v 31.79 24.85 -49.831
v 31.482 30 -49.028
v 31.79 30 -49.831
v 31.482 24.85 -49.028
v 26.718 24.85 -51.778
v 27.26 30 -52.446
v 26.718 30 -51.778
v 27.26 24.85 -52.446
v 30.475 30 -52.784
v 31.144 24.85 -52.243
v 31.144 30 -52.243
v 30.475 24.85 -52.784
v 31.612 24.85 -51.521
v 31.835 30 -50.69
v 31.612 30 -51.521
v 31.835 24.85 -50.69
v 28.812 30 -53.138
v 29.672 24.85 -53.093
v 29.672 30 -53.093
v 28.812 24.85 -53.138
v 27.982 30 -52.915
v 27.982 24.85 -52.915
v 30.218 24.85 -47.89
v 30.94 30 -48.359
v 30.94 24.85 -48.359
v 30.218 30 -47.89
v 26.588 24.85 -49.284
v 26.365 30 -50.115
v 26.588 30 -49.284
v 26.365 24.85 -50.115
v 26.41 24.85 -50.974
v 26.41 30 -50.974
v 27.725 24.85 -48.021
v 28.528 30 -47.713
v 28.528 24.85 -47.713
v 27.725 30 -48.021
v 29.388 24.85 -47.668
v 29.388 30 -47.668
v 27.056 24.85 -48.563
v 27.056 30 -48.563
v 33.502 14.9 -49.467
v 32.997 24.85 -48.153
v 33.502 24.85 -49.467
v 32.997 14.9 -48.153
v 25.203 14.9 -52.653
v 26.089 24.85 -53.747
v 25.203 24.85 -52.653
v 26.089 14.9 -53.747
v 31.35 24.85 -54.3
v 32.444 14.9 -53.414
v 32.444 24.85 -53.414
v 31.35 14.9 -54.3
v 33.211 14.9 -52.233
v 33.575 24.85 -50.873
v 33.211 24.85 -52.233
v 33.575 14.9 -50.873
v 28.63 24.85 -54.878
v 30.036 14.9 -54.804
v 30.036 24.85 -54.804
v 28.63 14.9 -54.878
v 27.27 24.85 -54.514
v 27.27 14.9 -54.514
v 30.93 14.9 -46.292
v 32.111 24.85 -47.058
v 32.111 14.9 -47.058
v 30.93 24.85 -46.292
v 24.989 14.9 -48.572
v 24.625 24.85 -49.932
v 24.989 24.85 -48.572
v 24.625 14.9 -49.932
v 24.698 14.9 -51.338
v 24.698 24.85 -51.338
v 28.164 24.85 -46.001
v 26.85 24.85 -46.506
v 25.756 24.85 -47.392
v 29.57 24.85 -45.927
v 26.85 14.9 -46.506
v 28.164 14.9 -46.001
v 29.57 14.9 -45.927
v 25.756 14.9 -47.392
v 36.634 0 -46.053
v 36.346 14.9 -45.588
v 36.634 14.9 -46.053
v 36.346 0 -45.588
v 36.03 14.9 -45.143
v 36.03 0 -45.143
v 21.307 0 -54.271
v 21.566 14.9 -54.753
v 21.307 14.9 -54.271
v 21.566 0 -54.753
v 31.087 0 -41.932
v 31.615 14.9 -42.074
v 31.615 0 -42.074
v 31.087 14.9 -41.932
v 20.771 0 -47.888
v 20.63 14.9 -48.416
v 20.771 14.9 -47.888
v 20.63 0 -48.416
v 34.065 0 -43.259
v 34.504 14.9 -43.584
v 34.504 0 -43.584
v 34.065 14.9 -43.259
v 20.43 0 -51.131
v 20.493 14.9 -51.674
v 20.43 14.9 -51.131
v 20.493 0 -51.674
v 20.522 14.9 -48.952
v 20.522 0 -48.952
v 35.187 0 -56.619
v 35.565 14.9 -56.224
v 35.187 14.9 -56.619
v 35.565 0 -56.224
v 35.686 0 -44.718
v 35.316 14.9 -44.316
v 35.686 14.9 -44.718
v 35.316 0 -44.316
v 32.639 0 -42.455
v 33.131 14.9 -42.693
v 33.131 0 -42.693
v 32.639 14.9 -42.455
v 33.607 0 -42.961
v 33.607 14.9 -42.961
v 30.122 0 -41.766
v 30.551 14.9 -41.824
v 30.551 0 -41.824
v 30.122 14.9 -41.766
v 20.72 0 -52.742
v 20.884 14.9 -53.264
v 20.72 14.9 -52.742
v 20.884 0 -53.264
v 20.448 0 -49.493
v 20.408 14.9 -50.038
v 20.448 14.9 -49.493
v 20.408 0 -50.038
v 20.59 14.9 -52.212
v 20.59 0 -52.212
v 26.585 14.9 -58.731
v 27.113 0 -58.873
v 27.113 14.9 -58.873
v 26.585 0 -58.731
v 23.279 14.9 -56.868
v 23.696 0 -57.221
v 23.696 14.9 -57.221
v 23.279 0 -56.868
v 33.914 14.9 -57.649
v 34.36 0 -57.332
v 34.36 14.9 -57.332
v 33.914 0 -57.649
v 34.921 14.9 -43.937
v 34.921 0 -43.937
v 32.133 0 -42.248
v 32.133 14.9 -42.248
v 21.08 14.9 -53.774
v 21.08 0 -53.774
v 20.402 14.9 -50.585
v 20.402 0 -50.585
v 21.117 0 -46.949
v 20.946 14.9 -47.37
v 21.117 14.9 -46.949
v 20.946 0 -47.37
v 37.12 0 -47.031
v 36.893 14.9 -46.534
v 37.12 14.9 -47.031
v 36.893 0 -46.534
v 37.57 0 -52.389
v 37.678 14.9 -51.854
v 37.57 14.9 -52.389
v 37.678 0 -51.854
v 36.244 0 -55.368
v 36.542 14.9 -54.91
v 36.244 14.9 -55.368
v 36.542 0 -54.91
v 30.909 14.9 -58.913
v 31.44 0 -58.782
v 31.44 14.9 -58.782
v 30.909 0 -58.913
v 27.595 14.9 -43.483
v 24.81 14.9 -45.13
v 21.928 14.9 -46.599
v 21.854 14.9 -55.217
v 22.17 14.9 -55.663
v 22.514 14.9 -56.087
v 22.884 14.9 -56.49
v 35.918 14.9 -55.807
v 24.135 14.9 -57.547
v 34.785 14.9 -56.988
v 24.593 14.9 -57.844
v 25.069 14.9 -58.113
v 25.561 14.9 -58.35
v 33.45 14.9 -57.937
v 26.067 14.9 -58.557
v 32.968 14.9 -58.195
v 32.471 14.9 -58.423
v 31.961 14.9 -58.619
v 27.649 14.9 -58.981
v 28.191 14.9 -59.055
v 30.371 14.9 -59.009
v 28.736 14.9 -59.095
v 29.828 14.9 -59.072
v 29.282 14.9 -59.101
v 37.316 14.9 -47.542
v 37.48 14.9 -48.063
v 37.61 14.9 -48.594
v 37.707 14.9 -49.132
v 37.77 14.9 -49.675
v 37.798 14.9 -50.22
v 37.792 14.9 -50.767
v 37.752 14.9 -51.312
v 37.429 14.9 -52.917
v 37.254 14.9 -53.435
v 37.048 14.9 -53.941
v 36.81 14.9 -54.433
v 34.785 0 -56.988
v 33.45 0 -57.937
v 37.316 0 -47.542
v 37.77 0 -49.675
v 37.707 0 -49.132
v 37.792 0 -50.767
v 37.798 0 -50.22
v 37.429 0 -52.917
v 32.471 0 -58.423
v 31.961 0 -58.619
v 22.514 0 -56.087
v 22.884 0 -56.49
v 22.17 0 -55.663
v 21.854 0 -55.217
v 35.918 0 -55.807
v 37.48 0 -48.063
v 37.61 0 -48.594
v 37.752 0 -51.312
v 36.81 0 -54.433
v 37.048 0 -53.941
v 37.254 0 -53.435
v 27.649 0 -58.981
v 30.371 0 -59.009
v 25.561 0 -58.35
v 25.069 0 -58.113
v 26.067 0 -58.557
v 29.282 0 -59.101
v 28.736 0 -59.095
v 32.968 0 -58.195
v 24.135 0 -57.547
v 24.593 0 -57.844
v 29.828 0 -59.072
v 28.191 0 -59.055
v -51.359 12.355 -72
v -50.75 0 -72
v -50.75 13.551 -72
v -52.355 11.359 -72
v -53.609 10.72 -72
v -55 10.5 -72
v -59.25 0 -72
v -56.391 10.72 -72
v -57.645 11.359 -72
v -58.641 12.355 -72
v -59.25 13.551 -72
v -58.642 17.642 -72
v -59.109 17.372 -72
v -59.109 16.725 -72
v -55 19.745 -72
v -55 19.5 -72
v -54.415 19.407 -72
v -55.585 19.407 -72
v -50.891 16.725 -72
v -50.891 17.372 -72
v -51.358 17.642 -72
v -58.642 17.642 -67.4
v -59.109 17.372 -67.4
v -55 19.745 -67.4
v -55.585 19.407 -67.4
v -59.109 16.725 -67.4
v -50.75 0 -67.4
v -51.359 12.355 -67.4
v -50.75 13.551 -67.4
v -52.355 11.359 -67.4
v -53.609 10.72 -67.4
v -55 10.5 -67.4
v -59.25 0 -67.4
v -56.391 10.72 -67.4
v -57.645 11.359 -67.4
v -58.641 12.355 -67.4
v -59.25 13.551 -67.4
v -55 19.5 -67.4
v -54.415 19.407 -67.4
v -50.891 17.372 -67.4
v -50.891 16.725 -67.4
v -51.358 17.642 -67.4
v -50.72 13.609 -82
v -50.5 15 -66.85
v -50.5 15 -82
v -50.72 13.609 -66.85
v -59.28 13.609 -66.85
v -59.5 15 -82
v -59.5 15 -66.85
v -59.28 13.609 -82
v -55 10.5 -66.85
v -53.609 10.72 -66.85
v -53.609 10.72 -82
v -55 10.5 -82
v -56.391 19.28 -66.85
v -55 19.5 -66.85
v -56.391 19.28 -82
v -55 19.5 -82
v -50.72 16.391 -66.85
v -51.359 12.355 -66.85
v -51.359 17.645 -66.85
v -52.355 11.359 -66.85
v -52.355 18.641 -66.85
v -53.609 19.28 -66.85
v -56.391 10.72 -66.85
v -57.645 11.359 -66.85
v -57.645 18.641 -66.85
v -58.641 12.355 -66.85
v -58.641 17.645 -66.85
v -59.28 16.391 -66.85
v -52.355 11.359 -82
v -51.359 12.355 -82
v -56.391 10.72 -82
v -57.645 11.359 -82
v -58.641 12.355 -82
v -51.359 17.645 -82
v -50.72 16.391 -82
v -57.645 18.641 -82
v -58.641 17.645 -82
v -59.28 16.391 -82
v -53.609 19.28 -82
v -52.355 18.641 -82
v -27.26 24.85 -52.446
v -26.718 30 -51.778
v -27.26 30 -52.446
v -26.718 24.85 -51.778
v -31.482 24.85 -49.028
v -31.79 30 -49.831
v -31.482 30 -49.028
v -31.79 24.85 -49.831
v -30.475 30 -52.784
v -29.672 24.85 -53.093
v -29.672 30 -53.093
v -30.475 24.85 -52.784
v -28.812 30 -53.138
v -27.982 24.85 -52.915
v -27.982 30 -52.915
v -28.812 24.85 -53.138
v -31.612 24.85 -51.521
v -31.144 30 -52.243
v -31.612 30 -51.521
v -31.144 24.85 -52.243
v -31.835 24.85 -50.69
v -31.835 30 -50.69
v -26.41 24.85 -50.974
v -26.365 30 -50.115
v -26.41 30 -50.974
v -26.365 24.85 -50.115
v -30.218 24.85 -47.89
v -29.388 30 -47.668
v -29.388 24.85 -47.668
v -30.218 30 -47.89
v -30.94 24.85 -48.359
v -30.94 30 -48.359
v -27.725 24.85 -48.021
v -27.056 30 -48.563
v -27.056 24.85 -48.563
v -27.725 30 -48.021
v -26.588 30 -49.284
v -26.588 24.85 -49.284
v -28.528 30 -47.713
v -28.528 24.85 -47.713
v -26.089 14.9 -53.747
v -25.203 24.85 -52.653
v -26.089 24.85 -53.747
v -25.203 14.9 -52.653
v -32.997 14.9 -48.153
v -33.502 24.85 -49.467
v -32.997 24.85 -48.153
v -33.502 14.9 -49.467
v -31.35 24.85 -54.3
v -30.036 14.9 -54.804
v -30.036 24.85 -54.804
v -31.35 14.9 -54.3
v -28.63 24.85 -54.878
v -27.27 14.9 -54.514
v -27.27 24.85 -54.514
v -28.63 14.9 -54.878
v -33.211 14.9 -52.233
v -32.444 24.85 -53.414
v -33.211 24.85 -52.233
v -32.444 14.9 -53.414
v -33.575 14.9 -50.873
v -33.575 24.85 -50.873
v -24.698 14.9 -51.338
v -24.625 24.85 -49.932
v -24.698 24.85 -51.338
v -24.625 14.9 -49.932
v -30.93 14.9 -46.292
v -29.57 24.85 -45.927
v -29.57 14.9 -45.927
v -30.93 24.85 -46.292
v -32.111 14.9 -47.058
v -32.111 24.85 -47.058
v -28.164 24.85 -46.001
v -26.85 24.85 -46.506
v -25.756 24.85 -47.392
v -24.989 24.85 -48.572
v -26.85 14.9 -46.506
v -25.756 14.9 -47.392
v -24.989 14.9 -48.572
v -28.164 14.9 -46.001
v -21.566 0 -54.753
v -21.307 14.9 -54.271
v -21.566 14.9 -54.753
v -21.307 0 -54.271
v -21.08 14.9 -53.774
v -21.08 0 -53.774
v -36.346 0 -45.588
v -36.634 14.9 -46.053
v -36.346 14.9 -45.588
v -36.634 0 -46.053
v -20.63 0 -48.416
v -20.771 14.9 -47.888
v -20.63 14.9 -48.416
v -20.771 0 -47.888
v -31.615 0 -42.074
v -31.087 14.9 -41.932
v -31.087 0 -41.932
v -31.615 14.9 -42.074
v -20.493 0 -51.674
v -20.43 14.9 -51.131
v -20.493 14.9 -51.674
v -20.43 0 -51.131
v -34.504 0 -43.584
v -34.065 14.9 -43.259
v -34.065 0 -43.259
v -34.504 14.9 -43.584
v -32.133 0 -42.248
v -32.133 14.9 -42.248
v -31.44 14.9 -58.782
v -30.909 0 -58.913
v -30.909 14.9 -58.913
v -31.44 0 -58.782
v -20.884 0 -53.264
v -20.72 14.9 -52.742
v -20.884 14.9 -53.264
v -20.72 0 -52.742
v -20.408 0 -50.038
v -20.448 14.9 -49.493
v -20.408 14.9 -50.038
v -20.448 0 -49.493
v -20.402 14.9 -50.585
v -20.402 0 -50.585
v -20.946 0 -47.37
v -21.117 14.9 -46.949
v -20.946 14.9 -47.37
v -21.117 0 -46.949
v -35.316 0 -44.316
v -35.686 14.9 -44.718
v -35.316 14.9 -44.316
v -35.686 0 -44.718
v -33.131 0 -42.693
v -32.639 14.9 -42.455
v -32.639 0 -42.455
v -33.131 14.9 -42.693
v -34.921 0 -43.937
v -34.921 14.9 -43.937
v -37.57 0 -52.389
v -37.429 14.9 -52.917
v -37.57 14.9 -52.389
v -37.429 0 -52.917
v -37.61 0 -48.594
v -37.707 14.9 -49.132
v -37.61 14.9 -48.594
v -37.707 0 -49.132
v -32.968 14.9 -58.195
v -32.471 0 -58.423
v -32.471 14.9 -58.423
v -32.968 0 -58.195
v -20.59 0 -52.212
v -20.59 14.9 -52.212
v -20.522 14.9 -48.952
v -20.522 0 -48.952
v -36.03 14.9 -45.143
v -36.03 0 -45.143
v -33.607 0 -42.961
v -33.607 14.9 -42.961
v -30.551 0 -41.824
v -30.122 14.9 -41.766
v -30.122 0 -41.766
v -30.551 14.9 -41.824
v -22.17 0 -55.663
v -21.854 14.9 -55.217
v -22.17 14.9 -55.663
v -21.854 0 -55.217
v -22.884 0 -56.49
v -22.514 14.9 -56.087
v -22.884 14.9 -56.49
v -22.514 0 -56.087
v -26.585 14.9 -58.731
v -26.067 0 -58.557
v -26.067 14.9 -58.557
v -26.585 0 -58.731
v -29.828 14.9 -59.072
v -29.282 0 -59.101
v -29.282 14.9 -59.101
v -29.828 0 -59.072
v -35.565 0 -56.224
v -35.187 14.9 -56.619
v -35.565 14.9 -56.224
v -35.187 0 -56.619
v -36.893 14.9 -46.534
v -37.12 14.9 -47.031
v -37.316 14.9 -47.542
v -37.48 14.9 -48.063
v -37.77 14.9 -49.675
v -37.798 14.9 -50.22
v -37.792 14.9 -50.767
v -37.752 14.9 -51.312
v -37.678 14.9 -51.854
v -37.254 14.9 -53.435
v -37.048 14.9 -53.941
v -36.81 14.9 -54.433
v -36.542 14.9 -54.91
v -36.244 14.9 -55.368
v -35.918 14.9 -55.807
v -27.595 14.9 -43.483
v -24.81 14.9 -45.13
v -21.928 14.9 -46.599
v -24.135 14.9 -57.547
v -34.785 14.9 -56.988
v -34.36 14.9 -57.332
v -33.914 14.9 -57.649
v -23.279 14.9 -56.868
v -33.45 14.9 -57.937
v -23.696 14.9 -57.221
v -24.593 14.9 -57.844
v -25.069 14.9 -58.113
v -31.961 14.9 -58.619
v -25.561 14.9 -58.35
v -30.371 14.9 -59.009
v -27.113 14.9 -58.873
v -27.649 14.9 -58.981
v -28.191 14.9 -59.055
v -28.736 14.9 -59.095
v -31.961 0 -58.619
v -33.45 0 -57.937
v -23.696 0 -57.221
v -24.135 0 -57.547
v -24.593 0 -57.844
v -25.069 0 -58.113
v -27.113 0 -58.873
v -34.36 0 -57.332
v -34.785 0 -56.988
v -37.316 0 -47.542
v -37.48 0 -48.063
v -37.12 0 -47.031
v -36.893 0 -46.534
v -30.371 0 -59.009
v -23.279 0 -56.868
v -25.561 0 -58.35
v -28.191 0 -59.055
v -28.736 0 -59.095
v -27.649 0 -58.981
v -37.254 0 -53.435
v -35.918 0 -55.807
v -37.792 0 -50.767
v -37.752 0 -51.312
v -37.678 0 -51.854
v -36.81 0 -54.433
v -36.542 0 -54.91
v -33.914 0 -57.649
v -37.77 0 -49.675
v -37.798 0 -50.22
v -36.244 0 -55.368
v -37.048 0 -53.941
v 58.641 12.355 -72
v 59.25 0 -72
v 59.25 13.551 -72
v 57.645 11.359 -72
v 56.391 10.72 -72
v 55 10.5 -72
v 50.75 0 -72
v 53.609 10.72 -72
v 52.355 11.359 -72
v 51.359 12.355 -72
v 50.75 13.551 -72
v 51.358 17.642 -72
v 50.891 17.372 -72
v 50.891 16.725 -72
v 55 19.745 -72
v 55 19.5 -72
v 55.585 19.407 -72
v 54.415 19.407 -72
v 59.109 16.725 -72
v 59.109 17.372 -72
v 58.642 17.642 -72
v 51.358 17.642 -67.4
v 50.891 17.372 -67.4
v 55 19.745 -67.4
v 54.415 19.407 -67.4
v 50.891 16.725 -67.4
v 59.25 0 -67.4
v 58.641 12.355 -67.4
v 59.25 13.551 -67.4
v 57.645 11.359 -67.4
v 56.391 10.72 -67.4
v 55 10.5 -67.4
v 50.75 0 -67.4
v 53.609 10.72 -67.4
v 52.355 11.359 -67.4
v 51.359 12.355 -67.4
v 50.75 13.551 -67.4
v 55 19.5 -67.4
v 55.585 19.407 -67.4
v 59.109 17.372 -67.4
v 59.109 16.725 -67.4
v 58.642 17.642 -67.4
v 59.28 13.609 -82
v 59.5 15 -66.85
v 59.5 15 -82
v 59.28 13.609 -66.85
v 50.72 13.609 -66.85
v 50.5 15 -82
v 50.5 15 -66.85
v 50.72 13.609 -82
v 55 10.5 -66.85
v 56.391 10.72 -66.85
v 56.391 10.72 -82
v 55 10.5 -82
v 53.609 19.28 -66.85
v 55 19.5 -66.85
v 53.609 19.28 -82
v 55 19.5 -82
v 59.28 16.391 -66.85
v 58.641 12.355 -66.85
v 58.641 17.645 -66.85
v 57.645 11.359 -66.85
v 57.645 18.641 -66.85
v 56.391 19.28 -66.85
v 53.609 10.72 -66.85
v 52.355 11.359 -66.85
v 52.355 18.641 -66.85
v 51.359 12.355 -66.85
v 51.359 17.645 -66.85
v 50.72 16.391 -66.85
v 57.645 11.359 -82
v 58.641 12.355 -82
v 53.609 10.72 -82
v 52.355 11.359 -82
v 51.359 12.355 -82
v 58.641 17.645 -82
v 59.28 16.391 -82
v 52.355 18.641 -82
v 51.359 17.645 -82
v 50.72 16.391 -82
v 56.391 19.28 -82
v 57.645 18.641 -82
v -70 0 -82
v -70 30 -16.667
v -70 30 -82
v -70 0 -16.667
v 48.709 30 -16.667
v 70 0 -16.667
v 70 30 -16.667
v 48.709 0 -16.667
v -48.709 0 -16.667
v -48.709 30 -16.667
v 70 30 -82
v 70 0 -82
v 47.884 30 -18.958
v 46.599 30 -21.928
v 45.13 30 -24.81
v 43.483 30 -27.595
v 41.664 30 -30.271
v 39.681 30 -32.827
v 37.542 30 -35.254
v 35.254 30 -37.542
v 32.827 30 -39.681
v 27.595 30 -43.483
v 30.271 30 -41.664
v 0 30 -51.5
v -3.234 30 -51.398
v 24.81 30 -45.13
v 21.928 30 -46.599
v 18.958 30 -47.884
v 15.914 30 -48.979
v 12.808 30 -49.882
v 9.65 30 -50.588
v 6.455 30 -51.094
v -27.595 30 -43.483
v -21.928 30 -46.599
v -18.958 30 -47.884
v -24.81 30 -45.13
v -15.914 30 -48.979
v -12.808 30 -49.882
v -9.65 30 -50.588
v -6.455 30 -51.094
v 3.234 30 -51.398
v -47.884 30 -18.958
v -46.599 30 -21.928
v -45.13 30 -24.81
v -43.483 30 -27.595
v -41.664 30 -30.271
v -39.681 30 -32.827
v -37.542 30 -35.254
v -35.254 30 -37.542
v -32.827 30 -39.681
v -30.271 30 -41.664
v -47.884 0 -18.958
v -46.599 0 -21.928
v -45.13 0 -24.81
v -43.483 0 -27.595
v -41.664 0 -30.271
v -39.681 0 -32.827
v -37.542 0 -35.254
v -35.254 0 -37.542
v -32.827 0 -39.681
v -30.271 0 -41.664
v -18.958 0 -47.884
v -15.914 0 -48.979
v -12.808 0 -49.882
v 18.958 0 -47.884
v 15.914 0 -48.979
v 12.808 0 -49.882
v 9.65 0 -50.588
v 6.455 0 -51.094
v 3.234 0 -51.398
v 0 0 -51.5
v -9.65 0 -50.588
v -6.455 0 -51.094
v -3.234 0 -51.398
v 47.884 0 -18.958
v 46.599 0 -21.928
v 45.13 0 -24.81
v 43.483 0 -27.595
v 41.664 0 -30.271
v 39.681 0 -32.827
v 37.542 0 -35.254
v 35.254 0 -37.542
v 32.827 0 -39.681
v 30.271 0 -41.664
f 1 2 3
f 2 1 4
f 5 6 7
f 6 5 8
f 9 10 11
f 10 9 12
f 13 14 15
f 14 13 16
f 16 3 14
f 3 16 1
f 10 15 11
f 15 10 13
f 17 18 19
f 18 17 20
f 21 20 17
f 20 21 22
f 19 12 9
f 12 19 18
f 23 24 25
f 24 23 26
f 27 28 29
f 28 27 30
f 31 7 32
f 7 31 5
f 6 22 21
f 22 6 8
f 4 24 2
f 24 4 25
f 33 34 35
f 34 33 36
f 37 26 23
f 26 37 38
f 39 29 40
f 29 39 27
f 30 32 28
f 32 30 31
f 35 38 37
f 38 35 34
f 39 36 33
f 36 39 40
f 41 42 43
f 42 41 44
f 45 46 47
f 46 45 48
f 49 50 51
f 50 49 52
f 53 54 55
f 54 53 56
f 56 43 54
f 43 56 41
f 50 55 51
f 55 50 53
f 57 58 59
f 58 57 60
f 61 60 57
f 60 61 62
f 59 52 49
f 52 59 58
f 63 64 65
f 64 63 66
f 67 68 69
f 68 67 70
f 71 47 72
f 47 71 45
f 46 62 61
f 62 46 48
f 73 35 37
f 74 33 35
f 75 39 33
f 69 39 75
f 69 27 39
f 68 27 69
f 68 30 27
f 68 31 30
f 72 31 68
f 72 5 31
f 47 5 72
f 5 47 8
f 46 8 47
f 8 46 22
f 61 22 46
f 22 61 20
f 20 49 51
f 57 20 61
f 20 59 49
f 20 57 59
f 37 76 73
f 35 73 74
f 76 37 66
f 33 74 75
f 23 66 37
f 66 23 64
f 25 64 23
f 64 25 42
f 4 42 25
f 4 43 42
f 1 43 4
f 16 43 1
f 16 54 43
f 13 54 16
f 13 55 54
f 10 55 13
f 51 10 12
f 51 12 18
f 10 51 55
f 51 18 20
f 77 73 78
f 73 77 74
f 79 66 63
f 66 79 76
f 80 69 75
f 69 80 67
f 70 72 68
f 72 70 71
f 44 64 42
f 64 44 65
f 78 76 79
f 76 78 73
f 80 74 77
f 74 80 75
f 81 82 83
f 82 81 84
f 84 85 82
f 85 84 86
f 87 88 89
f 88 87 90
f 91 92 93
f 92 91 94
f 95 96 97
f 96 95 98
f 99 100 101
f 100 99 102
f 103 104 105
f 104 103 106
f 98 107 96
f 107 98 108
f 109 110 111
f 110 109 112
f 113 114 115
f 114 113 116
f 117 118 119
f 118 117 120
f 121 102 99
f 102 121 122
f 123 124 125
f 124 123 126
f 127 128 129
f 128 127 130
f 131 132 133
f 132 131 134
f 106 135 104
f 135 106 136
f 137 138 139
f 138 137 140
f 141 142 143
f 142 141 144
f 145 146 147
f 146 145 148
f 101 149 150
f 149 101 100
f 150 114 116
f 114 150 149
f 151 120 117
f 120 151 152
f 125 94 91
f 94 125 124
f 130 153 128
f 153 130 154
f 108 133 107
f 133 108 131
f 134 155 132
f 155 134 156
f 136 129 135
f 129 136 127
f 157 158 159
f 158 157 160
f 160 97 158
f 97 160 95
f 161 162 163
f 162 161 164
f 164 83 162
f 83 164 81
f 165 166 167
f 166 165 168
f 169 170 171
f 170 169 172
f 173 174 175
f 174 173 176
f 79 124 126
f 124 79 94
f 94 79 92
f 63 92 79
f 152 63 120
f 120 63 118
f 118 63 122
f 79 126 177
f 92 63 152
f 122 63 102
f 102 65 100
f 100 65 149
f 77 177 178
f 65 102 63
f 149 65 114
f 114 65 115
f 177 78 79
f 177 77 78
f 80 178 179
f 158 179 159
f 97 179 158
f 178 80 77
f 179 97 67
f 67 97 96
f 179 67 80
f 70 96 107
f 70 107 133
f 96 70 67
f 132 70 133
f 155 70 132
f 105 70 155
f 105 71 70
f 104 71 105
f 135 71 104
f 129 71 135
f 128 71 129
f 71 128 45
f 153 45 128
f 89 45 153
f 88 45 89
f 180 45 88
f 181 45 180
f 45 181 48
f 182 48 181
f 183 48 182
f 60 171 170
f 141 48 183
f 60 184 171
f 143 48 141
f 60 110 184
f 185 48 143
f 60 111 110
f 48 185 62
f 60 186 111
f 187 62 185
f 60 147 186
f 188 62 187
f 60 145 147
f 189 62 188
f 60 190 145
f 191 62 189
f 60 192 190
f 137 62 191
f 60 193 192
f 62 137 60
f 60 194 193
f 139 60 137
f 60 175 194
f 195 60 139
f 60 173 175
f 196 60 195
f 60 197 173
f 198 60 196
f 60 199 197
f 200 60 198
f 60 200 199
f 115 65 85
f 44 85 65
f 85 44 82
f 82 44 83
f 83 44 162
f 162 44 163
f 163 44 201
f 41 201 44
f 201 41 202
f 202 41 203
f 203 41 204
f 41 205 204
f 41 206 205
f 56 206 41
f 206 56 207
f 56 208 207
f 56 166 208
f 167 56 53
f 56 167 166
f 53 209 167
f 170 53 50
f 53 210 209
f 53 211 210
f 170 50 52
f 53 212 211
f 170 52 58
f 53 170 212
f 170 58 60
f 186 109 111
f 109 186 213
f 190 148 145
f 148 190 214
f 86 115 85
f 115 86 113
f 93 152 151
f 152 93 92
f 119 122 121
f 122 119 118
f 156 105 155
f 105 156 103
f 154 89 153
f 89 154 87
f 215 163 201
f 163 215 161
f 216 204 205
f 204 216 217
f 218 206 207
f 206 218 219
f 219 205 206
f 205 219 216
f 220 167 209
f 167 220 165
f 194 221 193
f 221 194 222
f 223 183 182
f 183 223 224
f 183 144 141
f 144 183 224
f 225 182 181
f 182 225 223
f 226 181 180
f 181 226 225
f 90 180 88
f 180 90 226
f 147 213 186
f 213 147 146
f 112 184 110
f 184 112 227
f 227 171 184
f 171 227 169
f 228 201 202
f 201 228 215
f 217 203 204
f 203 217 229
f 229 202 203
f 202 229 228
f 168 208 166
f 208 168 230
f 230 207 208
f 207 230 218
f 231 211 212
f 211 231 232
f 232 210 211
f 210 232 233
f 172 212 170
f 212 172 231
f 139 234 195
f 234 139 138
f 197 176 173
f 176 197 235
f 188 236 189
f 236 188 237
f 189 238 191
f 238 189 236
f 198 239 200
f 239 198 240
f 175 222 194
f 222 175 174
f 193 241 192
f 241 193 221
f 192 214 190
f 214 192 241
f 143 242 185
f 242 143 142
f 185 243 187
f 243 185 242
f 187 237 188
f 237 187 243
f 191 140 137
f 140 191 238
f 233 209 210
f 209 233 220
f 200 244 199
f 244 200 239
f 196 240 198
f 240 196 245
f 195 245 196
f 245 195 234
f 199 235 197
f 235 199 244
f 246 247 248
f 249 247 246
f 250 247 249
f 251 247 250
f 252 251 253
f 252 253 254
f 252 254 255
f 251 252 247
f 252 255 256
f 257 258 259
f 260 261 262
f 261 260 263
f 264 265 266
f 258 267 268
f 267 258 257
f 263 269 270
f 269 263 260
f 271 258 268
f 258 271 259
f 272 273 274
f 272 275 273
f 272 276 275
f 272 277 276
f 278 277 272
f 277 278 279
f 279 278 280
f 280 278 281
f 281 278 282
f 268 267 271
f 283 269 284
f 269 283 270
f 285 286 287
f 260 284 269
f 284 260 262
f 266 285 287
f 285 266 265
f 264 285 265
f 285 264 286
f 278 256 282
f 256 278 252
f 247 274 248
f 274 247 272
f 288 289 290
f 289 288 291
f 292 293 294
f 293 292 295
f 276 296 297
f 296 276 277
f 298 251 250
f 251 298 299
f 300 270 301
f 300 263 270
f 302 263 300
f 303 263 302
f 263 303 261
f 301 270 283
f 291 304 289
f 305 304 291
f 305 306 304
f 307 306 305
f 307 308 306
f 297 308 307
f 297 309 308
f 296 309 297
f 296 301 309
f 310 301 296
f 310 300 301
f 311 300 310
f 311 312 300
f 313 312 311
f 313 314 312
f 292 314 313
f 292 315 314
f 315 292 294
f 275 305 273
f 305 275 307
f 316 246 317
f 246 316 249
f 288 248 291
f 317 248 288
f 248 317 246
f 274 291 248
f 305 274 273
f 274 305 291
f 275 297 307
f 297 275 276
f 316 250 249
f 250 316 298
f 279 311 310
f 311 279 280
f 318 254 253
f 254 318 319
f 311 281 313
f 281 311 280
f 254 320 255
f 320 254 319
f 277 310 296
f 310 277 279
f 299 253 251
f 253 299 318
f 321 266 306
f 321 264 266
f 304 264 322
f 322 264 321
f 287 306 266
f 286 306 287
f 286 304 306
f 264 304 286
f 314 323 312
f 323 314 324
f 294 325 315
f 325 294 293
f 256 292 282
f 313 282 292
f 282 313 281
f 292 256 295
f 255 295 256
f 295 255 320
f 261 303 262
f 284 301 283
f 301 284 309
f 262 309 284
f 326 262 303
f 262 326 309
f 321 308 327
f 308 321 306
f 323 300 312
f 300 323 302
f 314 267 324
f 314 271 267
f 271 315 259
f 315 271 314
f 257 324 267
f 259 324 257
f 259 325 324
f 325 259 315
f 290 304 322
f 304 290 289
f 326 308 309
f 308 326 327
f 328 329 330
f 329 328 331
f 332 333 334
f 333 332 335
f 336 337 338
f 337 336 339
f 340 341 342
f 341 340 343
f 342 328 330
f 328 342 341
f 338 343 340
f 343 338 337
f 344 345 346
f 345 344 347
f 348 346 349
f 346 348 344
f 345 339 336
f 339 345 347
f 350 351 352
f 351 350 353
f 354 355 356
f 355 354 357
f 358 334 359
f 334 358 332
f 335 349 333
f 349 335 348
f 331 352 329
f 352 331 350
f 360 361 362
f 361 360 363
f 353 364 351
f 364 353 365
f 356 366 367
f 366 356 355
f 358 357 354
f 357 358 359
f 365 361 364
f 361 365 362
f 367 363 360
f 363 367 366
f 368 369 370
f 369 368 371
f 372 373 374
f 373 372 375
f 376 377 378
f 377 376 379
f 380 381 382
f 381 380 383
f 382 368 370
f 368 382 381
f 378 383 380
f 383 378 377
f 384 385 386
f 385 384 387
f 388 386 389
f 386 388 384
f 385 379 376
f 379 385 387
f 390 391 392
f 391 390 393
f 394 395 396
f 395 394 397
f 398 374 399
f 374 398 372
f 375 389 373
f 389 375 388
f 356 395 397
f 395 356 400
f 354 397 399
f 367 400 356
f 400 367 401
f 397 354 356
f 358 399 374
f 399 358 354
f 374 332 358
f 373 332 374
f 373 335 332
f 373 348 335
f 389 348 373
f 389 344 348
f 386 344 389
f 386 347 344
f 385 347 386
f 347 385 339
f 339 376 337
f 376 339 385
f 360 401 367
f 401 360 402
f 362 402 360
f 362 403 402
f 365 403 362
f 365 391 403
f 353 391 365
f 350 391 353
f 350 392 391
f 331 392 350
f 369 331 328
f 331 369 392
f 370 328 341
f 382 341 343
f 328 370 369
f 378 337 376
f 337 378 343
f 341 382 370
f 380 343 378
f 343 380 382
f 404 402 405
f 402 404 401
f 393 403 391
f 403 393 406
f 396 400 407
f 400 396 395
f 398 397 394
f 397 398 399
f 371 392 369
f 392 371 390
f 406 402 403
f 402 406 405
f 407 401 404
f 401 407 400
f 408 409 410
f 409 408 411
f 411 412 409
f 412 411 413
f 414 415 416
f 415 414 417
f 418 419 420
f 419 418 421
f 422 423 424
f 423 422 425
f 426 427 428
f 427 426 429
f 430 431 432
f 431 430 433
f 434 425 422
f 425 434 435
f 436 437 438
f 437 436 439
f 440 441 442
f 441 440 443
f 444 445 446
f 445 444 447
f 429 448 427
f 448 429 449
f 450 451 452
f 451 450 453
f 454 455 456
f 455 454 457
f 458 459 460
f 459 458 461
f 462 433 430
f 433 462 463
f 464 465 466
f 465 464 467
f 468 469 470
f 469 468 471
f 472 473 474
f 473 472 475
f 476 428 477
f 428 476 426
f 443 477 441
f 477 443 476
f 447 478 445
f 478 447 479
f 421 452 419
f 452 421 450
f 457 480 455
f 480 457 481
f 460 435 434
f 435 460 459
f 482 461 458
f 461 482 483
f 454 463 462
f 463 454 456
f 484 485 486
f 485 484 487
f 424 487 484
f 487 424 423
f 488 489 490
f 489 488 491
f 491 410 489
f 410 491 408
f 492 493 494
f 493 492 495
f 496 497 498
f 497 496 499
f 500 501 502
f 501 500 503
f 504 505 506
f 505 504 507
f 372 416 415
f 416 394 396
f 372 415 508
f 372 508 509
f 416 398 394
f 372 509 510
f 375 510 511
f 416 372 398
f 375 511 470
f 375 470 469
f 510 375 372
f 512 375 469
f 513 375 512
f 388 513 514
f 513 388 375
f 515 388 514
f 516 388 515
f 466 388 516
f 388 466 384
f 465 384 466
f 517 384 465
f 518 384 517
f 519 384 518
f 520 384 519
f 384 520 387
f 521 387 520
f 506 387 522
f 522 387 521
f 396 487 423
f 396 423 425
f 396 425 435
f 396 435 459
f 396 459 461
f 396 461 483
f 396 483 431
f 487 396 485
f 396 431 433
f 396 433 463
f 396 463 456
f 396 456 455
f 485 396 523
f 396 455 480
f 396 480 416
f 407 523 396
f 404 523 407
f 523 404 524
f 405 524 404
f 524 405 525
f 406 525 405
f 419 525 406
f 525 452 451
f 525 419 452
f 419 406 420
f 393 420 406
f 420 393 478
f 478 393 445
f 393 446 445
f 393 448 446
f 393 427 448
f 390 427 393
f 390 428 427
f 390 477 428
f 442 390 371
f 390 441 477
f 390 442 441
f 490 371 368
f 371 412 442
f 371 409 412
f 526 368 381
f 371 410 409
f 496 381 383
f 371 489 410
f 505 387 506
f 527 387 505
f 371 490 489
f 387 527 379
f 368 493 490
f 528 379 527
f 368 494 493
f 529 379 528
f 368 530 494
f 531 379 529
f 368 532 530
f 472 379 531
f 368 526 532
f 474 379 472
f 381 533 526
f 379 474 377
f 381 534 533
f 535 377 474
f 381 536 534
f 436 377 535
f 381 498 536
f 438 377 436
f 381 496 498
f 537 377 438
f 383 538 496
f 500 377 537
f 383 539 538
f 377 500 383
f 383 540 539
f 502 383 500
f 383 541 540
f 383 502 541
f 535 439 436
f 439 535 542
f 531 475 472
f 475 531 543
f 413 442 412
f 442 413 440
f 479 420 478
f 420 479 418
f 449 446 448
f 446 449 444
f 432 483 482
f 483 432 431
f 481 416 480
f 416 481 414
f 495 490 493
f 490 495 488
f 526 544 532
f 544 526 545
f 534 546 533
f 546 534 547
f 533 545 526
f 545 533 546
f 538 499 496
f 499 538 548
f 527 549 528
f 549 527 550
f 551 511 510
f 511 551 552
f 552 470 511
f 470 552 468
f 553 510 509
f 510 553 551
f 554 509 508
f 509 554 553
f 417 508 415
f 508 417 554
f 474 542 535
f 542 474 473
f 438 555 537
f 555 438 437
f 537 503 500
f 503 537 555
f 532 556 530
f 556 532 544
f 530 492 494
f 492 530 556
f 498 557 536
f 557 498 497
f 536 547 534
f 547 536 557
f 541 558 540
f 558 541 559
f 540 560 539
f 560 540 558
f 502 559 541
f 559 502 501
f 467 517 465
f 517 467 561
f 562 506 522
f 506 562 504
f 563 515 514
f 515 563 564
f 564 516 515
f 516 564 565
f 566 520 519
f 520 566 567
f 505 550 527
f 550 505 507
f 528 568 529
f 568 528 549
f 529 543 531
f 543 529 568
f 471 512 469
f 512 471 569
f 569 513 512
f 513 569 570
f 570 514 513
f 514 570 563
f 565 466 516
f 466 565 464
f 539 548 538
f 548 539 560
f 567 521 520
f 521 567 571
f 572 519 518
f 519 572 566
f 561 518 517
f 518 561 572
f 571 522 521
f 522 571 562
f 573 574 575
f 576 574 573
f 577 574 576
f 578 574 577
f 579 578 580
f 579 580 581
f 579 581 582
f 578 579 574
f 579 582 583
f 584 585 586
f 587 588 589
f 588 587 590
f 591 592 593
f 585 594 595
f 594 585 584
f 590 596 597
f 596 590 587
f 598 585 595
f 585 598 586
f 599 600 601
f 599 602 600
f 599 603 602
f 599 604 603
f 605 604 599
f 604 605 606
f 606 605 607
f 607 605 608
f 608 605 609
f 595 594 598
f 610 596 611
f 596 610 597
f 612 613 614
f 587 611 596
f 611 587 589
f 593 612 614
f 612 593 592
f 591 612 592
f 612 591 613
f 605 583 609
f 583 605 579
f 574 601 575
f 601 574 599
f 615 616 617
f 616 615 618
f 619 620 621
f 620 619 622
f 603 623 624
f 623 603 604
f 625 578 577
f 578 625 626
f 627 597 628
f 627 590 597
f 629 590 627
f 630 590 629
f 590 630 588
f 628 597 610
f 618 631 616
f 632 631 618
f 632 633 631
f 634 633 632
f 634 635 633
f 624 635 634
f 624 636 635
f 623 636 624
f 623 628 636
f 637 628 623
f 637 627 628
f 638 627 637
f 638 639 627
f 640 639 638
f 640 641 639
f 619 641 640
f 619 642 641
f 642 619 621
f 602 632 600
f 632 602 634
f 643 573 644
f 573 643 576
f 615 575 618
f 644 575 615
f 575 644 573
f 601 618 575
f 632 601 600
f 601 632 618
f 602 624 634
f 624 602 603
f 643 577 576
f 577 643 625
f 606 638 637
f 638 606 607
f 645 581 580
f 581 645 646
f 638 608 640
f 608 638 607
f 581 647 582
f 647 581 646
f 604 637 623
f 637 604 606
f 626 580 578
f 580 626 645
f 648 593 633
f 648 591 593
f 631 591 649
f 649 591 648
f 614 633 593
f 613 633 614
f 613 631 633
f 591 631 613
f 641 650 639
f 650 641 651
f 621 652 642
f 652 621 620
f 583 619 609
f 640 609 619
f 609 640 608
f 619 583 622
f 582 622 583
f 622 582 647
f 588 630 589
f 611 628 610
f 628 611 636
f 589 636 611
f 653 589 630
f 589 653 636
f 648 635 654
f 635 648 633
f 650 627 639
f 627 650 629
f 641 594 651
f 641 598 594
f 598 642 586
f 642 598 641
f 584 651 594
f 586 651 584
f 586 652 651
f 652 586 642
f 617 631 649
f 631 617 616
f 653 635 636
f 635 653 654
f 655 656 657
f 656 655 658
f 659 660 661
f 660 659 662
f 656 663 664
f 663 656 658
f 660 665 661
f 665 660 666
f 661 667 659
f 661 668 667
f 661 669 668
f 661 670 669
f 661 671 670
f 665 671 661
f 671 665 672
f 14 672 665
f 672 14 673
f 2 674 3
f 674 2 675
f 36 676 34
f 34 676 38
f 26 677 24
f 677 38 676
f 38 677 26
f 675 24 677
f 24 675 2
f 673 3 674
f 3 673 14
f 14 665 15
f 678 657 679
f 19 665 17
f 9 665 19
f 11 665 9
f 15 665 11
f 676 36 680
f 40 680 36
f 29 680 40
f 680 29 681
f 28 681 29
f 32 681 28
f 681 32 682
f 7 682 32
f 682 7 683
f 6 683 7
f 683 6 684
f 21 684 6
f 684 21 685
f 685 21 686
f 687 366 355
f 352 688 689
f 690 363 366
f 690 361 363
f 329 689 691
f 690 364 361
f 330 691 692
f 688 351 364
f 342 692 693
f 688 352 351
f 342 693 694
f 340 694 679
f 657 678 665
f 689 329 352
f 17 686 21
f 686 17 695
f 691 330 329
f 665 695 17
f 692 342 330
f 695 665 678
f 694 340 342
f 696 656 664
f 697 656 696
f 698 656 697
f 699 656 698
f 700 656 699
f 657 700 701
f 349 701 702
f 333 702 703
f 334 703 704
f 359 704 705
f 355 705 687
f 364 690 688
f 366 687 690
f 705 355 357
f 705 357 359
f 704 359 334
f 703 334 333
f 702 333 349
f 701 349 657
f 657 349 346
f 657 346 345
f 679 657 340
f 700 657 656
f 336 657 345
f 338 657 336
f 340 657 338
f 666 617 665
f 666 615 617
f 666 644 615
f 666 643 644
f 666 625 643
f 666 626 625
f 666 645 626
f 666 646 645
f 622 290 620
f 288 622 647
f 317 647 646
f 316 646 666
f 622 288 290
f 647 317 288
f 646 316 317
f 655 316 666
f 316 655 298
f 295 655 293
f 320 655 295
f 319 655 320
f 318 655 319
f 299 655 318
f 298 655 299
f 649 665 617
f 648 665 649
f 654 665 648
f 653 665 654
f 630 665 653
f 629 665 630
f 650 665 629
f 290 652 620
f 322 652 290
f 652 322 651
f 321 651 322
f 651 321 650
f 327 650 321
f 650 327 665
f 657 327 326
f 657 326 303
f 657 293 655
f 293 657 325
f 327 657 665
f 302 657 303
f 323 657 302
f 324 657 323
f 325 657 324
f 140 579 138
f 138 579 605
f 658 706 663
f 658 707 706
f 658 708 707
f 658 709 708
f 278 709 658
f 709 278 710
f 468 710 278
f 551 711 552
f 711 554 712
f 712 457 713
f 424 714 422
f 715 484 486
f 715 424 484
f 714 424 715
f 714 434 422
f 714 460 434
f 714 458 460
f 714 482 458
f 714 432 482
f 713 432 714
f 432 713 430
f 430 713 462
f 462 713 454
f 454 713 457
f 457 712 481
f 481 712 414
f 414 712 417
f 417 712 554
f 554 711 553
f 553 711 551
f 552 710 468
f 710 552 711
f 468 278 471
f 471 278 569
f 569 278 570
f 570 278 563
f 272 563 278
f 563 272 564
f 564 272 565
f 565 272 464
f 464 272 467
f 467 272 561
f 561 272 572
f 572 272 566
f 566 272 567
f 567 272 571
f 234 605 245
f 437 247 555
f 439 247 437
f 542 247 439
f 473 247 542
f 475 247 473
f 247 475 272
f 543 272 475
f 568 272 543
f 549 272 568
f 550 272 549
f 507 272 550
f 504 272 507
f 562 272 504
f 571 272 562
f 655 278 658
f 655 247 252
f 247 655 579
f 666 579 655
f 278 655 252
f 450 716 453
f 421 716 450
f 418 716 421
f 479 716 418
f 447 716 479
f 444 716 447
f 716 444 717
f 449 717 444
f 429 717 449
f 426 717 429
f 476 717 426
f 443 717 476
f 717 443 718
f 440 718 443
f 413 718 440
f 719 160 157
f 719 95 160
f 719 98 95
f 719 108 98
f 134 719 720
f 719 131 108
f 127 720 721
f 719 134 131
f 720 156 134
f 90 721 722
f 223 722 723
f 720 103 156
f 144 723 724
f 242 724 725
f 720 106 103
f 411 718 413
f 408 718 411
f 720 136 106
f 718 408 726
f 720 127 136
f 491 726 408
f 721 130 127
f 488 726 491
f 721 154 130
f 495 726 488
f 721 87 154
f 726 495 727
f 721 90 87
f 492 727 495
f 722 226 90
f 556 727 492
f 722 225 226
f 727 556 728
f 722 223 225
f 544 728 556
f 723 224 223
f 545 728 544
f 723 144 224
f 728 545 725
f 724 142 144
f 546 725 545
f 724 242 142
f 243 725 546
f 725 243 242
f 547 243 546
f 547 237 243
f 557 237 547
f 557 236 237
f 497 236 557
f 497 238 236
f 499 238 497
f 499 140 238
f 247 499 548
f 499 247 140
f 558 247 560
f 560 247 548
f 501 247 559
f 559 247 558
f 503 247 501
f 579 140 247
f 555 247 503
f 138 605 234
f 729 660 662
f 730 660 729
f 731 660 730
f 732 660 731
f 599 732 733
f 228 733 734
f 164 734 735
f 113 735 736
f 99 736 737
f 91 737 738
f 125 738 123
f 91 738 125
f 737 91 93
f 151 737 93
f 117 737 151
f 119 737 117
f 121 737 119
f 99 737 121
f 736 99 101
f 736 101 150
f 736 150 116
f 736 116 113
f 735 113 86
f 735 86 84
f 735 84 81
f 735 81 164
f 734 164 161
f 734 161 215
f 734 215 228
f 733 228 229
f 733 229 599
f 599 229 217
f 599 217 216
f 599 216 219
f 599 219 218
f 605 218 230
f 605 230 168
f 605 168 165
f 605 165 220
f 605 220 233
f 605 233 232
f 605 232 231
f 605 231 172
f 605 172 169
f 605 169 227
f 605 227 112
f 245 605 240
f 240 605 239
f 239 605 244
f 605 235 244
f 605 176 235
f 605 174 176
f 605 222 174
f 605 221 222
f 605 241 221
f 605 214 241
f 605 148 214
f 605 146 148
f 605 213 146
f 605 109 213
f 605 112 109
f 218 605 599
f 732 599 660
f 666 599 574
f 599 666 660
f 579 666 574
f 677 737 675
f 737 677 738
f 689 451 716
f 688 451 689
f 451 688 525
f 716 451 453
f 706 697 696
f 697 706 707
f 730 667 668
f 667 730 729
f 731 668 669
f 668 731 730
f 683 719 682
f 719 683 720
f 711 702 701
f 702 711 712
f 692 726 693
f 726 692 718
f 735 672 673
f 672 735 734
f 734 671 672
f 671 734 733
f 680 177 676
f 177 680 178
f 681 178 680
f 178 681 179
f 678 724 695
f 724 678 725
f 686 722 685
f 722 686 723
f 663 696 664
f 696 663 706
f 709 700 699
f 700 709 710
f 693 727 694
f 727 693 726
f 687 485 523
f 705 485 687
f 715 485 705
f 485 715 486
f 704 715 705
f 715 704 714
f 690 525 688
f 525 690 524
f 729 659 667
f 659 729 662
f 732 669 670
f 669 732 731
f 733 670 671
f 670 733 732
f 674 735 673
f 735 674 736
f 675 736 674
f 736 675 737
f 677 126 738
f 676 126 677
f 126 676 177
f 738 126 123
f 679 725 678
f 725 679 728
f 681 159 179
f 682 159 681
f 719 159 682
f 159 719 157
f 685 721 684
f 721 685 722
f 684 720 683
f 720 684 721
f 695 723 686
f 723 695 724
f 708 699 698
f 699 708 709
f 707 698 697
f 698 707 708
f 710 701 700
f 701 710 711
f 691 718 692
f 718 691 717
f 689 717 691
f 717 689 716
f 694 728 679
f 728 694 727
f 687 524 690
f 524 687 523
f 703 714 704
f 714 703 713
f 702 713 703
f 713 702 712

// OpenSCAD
translate(v = [0, 0, -82.0000000000]) {
	difference() {
		translate(v = [-70, 0, 0]) {
			cube(size = [140, 30, 65.3333333333]);
		}
		translate(v = [0, 0, 82.0000000000]) {
			rotate(a = [-90, 0, 0]) {
				cylinder($fn = 100, d = 103.0000000000, h = 30.0500000000);
			}
		}
		translate(v = [0, 0, 82.0000000000]) {
			rotate(a = [0, -30, 0]) {
				translate(v = [0, 24.8000000000, -58.2000000000]) {
					rotate(a = [90, 0, 0]) {
						rotate(a = [180, 0, 0]) {
							union() {
								translate(v = [0, 0, false]) {
									cylinder($fn = 20, d = 5.5000000000, h = 19.8500000000);
								}
								translate(v = [0, 0, -15.1500000000]) {
									cylinder($fn = 20, d = 9.0000000000, h = 15.2000000000);
								}
							}
						}
					}
				}
				translate(v = [0, 14.9000000000, -58.2000000000]) {
					rotate(a = [90, 0, 0]) {
						cylinder($fn = 100, d = 17.4000000000, h = 30);
					}
				}
			}
		}
		translate(v = [-55., 15., 10.]) {
			rotate(a = [90, 0, 0]) {
				union() {
					rotate(a = [-90, 90, 0]) {
						cylinder($fn = 6, d = 9.4900000000, h = 4.6000000000);
					}
					translate(v = [-4.2500000000, 0, 0]) {
						cube(size = [8.5000000000, 4.6000000000, 100]);
					}
				}
			}
			translate(v = [0, 0, -10]) {
				rotate(a = [180, 0, 0]) {
					union() {
						translate(v = [0, 0, false]) {
							cylinder($fn = 20, d = 5.5000000000, h = 35.2000000000);
						}
						translate(v = [0, 0, -15.1500000000]) {
							cylinder($fn = 20, d = 9.0000000000, h = 15.2000000000);
						}
					}
				}
			}
		}
		translate(v = [0, 0, 82.0000000000]) {
			rotate(a = [0, 30, 0]) {
				translate(v = [0, 24.8000000000, -58.2000000000]) {
					rotate(a = [90, 0, 0]) {
						rotate(a = [180, 0, 0]) {
							union() {
								translate(v = [0, 0, false]) {
									cylinder($fn = 20, d = 5.5000000000, h = 19.8500000000);
								}
								translate(v = [0, 0, -15.1500000000]) {
									cylinder($fn = 20, d = 9.0000000000, h = 15.2000000000);
								}
							}
						}
					}
				}
				translate(v = [0, 14.9000000000, -58.2000000000]) {
					rotate(a = [90, 0, 0]) {
						cylinder($fn = 100, d = 17.4000000000, h = 30);
					}
				}
			}
		}
		translate(v = [55.,15.,10.]) {
			rotate(a = [90, 0, 0]) {
				union() {
					rotate(a = [-90, 90, 0]) {
						cylinder($fn = 6, d = 9.4900000000, h = 4.6000000000);
					}
					translate(v = [-4.2500000000, 0, 0]) {
						cube(size = [8.5000000000, 4.6000000000, 100]);
					}
				}
			}
			translate(v = [0, 0, -10]) {
				rotate(a = [180, 0, 0]) {
					union() {
						translate(v = [0, 0, false]) {
							cylinder($fn = 20, d = 5.5000000000, h = 35.2000000000);
						}
						translate(v = [0, 0, -15.1500000000]) {
							cylinder($fn = 20, d = 9.0000000000, h = 15.2000000000);
						}
					}
				}
			}
		}
	}
}
